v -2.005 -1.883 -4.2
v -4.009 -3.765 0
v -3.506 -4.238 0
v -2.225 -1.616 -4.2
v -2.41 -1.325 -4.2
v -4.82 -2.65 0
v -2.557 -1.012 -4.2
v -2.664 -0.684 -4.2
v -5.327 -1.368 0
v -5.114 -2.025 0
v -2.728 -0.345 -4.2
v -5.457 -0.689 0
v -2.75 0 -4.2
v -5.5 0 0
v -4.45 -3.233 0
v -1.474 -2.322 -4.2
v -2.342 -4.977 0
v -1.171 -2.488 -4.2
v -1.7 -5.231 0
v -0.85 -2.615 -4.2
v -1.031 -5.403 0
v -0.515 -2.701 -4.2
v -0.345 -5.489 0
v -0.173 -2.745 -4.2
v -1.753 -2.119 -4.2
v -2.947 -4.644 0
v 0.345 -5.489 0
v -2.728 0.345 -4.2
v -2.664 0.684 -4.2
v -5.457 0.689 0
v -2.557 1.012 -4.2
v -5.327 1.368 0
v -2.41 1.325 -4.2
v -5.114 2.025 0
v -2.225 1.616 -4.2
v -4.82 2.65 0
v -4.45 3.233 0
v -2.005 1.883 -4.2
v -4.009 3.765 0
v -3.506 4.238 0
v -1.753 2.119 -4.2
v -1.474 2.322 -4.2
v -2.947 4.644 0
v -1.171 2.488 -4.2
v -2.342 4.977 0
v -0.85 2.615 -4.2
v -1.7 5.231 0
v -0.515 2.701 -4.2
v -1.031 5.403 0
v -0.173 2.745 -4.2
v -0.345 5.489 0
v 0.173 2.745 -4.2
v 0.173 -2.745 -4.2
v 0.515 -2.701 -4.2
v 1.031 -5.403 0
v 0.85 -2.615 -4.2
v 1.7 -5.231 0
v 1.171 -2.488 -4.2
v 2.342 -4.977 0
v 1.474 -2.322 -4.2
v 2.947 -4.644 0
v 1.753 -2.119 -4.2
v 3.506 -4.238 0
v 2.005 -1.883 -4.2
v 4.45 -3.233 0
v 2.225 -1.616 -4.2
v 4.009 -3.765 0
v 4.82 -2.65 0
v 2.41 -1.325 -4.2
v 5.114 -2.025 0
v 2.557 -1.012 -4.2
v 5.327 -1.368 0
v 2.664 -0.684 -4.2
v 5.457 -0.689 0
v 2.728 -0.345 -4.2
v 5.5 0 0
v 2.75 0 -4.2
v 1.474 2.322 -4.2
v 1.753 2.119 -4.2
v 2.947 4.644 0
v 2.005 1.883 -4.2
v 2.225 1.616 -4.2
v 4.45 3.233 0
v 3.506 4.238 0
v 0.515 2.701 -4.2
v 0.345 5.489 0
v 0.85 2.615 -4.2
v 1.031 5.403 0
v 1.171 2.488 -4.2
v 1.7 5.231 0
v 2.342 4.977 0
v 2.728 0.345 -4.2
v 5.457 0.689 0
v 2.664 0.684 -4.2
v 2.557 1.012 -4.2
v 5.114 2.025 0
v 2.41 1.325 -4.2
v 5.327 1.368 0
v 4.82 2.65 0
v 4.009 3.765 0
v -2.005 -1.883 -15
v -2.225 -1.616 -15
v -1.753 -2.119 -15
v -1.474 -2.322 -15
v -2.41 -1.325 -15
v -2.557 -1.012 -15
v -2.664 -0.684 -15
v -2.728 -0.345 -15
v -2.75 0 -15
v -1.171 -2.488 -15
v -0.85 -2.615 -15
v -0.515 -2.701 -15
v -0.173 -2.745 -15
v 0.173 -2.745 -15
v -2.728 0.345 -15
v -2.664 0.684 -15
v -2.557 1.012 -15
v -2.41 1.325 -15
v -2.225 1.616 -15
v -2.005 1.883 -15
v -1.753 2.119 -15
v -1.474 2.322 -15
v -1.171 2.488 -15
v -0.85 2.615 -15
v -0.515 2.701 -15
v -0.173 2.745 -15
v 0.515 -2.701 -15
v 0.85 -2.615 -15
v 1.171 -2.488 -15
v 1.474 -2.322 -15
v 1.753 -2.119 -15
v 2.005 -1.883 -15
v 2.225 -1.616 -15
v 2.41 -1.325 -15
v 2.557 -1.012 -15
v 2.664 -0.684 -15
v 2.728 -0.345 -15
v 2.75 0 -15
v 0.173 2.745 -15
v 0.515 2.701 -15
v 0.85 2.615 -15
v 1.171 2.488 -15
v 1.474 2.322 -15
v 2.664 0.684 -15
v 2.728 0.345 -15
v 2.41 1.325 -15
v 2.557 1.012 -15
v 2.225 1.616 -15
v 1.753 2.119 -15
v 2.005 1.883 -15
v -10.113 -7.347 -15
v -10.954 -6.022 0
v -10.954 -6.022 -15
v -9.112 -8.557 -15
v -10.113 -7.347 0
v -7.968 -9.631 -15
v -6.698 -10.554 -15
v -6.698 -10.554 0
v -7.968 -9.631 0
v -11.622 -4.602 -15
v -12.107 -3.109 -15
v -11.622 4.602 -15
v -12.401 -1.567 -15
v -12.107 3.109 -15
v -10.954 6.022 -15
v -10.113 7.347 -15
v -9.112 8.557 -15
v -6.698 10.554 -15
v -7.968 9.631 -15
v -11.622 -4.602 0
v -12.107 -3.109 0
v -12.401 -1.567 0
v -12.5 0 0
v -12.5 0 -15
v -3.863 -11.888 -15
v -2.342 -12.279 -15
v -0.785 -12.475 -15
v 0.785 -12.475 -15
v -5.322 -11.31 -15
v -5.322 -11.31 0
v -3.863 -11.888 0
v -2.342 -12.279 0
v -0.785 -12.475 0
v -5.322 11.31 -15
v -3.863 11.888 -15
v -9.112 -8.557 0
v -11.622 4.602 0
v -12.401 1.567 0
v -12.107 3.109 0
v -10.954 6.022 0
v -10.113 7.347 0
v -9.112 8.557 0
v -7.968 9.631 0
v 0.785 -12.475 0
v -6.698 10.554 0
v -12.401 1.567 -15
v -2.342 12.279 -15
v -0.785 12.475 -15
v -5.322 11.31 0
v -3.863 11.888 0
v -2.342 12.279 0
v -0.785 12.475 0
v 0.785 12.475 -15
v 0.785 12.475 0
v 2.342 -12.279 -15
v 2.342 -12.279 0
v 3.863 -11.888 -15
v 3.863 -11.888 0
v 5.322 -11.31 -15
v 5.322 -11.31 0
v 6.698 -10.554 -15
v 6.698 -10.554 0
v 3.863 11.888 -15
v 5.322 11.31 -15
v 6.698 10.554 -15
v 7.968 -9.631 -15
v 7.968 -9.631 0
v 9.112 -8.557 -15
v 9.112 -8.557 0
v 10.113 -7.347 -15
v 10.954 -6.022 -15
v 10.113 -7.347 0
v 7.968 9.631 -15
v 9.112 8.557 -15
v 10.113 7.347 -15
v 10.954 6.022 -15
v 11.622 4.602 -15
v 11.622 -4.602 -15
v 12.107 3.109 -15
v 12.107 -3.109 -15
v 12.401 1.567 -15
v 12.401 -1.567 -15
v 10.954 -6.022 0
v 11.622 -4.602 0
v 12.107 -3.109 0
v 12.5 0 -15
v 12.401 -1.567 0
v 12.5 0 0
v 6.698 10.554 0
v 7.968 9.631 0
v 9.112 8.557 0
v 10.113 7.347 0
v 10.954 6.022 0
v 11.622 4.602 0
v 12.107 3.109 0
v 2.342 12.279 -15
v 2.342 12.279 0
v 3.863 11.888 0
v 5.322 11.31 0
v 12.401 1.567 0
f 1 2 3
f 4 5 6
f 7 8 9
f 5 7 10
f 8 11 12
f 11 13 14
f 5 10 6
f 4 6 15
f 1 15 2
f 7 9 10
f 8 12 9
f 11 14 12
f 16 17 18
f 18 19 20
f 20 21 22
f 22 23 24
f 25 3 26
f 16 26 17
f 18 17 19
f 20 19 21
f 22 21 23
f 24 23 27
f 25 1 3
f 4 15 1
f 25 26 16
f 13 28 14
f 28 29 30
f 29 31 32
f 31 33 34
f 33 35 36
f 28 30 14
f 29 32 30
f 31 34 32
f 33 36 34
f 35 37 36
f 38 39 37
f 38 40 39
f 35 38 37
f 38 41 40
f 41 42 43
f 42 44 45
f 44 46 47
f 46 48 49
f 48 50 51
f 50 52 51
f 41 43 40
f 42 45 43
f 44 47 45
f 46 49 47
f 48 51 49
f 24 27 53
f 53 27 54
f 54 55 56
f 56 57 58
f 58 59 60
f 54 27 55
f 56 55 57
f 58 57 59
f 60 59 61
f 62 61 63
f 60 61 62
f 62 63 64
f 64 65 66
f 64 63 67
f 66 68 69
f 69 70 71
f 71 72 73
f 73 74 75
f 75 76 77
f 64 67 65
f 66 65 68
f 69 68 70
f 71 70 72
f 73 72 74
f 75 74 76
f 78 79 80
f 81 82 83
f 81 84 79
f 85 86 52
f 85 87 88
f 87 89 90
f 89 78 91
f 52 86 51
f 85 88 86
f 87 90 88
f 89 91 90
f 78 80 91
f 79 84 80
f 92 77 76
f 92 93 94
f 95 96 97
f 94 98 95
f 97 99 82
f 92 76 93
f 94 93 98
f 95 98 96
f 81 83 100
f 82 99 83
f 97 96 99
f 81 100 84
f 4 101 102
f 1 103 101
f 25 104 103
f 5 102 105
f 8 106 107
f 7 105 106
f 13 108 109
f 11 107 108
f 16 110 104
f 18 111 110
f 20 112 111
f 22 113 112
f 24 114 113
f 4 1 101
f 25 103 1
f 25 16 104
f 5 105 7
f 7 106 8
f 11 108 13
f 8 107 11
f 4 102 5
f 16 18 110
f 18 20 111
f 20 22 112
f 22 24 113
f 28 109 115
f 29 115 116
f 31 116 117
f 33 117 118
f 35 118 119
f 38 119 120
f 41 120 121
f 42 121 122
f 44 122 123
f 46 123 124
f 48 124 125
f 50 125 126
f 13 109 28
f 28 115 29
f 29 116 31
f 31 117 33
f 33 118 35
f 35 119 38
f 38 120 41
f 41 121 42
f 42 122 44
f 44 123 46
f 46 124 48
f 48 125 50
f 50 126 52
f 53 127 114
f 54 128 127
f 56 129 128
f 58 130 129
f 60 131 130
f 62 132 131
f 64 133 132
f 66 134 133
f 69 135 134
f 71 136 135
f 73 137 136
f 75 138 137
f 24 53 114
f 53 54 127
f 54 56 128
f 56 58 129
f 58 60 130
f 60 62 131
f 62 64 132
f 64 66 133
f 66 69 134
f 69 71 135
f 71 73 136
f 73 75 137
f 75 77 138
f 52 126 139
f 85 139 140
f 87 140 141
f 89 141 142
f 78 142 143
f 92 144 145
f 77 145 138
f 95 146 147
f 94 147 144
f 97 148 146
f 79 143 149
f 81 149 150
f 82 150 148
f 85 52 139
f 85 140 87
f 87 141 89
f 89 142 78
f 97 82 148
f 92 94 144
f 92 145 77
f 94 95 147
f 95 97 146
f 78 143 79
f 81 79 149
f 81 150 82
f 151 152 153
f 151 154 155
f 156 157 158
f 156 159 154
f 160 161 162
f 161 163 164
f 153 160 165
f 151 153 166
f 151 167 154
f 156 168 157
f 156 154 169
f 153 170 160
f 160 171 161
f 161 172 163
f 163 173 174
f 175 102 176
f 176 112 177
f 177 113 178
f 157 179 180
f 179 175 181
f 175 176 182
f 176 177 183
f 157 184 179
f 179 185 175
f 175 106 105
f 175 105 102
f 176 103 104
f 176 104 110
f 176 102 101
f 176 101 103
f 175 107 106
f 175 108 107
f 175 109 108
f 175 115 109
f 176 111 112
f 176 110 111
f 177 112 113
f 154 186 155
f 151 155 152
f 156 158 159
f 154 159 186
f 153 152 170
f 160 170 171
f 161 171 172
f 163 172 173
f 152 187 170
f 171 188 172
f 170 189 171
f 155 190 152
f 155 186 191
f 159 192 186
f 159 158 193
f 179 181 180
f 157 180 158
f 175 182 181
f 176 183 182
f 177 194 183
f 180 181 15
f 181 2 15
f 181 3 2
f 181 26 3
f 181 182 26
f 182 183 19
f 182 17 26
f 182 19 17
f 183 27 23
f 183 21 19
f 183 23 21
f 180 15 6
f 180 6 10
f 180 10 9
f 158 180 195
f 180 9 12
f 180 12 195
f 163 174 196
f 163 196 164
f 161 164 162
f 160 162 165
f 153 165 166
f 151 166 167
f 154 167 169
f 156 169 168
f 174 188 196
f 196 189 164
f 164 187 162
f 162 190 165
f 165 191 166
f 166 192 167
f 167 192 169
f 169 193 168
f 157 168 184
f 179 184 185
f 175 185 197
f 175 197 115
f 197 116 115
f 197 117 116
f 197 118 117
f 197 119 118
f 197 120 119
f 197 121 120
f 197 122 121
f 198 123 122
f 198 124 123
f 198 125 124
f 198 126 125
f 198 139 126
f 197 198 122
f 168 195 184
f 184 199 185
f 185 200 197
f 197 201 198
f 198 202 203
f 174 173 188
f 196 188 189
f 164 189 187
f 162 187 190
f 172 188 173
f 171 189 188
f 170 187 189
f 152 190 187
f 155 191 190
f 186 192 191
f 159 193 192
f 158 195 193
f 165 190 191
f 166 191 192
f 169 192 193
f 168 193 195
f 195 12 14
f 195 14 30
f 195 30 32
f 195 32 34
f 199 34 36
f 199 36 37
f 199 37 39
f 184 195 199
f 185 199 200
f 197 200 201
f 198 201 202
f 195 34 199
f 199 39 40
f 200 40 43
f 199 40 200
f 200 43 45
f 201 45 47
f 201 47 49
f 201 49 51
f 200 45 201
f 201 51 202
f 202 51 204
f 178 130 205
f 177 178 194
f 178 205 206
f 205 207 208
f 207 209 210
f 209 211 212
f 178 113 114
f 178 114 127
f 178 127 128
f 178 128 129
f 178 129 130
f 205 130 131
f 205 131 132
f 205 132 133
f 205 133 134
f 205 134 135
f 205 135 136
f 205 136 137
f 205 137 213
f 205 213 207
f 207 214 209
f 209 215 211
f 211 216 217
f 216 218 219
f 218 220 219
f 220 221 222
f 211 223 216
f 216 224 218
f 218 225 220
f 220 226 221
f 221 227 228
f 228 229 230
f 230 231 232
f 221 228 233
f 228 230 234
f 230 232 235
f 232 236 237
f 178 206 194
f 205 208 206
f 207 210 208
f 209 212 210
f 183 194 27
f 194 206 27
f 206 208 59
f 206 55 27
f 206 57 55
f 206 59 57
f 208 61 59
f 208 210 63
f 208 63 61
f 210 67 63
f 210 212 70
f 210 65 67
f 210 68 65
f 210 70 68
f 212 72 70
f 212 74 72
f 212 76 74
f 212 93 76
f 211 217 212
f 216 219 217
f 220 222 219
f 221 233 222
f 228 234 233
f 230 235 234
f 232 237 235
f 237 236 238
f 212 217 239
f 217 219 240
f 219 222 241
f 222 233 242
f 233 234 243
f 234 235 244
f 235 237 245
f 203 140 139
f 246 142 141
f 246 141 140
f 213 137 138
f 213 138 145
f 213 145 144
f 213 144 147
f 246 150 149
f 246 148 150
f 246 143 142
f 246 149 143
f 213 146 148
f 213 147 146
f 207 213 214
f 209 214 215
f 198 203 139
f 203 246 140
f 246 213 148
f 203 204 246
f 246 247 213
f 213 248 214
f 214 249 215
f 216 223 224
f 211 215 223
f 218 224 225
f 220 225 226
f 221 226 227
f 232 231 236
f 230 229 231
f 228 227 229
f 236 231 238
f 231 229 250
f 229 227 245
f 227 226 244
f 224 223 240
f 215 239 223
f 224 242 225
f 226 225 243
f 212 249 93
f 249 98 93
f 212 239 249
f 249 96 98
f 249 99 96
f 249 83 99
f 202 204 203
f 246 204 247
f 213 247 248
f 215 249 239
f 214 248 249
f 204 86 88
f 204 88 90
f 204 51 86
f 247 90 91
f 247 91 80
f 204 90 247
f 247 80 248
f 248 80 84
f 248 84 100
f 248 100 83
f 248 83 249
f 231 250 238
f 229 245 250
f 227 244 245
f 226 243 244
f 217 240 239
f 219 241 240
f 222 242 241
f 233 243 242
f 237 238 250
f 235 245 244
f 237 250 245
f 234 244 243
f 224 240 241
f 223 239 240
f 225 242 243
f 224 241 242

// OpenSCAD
$fn = 50;

difference() {
	union() {
		translate(v = [0, 0, -15.0]) {
			cylinder(h = 15, r = 12.5);
		}
	}
	union() {
		translate(v = [0, 0, 0]) {
			rotate(a = [0, 0, 0]) {
				difference() {
					union() {
						translate(v = [0, 0, -18.0]) {
							cylinder(h = 18, r = 2.25);
						}
						translate(v = [0, 0, -4.2]) {
							cylinder(h = 4.2, r1 = 2.75, r2 = 5.5);
						}
						translate(v = [0, 0, -18.0]) {
							cylinder(h = 18, r = 2.75);
						}
						translate(v = [0, 0, -18.0]) {
							cylinder(h = 18, r = 2.25);
						}
					}
					union();
				}
			}
		}
	}
}
